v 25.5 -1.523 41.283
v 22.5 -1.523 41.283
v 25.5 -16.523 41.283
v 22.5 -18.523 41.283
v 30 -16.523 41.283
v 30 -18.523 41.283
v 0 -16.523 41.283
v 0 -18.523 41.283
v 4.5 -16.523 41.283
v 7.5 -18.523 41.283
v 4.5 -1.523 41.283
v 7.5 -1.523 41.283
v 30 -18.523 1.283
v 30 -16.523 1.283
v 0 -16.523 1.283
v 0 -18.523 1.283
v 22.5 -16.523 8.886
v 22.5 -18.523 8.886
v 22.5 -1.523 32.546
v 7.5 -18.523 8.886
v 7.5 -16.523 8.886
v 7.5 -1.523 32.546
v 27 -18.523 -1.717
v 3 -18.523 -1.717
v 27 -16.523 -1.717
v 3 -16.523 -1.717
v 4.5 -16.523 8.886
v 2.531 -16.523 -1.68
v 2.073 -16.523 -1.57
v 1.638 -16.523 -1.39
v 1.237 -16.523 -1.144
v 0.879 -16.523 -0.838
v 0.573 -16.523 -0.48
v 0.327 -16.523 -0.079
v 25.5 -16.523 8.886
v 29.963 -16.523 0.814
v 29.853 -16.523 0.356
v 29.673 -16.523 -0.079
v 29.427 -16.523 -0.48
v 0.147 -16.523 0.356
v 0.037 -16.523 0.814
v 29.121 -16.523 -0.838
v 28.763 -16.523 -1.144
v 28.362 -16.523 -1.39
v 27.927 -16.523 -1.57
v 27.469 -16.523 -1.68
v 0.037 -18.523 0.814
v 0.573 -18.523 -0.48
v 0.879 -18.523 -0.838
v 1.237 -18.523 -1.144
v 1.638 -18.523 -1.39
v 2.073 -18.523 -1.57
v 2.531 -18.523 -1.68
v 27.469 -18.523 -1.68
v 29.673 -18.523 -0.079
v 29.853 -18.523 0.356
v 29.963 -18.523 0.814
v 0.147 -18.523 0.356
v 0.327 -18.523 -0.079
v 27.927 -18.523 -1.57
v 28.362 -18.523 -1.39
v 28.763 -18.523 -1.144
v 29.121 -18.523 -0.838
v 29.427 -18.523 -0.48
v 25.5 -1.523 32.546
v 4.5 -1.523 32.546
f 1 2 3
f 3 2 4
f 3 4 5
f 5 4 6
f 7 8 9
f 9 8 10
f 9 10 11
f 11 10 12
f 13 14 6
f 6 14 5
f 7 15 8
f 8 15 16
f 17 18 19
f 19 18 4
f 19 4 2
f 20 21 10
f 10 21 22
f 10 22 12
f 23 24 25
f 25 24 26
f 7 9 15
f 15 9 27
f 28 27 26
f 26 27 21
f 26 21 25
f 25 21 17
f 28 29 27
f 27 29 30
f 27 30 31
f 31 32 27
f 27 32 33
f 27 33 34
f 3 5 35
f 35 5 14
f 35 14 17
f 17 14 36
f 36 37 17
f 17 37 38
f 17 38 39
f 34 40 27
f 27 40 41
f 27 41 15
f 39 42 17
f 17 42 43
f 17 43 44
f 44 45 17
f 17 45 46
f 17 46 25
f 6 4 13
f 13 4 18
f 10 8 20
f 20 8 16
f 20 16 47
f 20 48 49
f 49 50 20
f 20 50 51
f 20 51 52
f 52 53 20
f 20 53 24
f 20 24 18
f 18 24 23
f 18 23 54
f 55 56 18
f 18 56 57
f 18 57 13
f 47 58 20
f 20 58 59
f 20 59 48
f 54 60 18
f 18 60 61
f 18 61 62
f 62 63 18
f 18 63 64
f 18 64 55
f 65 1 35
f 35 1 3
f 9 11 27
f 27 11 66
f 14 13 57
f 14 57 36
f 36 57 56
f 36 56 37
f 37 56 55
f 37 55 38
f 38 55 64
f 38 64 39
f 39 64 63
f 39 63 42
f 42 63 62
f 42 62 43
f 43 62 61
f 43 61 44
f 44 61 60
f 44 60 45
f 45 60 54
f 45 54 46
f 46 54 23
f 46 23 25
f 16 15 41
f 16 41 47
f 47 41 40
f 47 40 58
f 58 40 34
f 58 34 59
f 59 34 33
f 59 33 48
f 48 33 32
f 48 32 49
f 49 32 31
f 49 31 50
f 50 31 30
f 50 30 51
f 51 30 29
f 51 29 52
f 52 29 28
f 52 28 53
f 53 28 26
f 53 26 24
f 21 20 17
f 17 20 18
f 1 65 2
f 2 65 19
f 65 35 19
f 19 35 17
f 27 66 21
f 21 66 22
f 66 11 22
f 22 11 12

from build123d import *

# Parameters (mm, degrees)
CROQUIS2_W              = 43
CROQUIS2_H              = 30
SALIENTE_EXTRUIR1_DEPTH = 30
CROQUIS3_W              = 42.529407755
CROQUIS3_H              = 25.558495791
CORTAR_EXTRUIR1_DEPTH   = 30
CORTAR_EXTRUIR2_START   = -7.5
CORTAR_EXTRUIR2_DEPTH   = 15
CORTAR_EXTRUIR4_DEPTH   = 4.5
CORTAR_EXTRUIR5_DEPTH   = 4.5
REDONDEO1_R             = 3
CROQUIS8_W              = 15
CROQUIS8_H              = 32.397186909
CORTAR_EXTRUIR6_DEPTH   = 4.5
CROQUIS9_W              = 120.283196461
CROQUIS9_H              = 78.810135234
CORTAR_EXTRUIR7_DEPTH   = 22.5
CORTAR_EXTRUIR8_DEPTH   = 22.5


with BuildPart() as part:
    # Croquis2 → Saliente-Extruir1 (new body)
    with BuildSketch(Plane(origin=(0, 0, 0), x_dir=(0, 0, -1), z_dir=(1, 0, 0))):
        with Locations((-19.783269962, -13.522813688)):
            Rectangle(CROQUIS2_W, CROQUIS2_H)
    extrude(amount=SALIENTE_EXTRUIR1_DEPTH)

    # Croquis3 → Cortar-Extruir1 (cut)
    with BuildSketch(Plane(origin=(30, 0, 0), x_dir=(0, 0, -1), z_dir=(1, 0, 0))):
        with Locations((-17.018566085, -31.302061584)):
            Rectangle(CROQUIS3_W, CROQUIS3_H)
        Polygon((-31.675073764, 1.477186312), (-3.283269962, -16.522813688), (1.716730038, -16.522813688), (1.716730038, 1.477186312), align=None)
    extrude(amount=-CORTAR_EXTRUIR1_DEPTH, mode=Mode.SUBTRACT)

    # Croquis4 → Cortar-Extruir2 (cut)
    with BuildSketch(Plane(origin=(30, 0, 0), x_dir=(0, 0, -1), z_dir=(1, 0, 0)).offset(CORTAR_EXTRUIR2_START)):
        Polygon((-41.283269962, -1.522813688), (-32.545919554, -1.522813688), (-8.886083053, -16.522813688), (-41.283269962, -16.522813688), align=None)
    extrude(amount=-CORTAR_EXTRUIR2_DEPTH, mode=Mode.SUBTRACT)

    # Croquis5 → Cortar-Extruir4 (cut)
    with BuildSketch(Plane(origin=(30, 0, 0), x_dir=(0, 0, -1), z_dir=(1, 0, 0))):
        Polygon((-3.283269962, -16.522813688), (-41.283269962, -16.522813688), (-41.283269962, 1.477186312), (-31.675073764, 1.477186312), align=None)
    extrude(amount=-CORTAR_EXTRUIR4_DEPTH, mode=Mode.SUBTRACT)

    # Croquis6 → Cortar-Extruir5 (cut)
    with BuildSketch(Plane.ZY):
        Polygon((3.283269962, -16.522813688), (41.283269962, -16.522813688), (41.283269962, 1.477186312), (31.675073764, 1.477186312), align=None)
    extrude(amount=-CORTAR_EXTRUIR5_DEPTH, mode=Mode.SUBTRACT)

    # Redondeo1
    redondeo1_edges = [part.edges().sort_by_distance(p)[0] for p in [
        (0, -17.522813688, -1.716730038),
        (30, -17.522813688, -1.716730038),
    ]]
    fillet(redondeo1_edges, radius=REDONDEO1_R)

    # Croquis8 → Cortar-Extruir6 (cut)
    with BuildSketch(Plane(origin=(0, -16.522813688, 0), x_dir=(1, 0, 0), z_dir=(0, 1, 0))):
        with Locations((15, -25.084676508)):
            Rectangle(CROQUIS8_W, CROQUIS8_H)
    extrude(amount=-CORTAR_EXTRUIR6_DEPTH, mode=Mode.SUBTRACT)

    # Croquis9 → Cortar-Extruir7 (cut)
    with BuildSketch(Plane.XZ.offset(18.522813688)):
        with Locations((17.6156444, 62.089659259)):
            Rectangle(CROQUIS9_W, CROQUIS9_H)
    extrude(amount=CORTAR_EXTRUIR7_DEPTH, mode=Mode.SUBTRACT)

    # Croquis10 → Cortar-Extruir8 (cut)
    with BuildSketch(Plane(origin=(25.5, 0, 0), x_dir=(0, 0, -1), z_dir=(1, 0, 0))):
        Polygon((-41.283269962, -1.522813688), (-32.545919554, -1.522813688), (-8.886083053, -16.522813688), (1.716730038, -16.522813688), (-27.710183608, 4.902177411), (-44.228495628, 5.2702735), align=None)
    extrude(amount=-CORTAR_EXTRUIR8_DEPTH, mode=Mode.SUBTRACT)


solid = part.part
